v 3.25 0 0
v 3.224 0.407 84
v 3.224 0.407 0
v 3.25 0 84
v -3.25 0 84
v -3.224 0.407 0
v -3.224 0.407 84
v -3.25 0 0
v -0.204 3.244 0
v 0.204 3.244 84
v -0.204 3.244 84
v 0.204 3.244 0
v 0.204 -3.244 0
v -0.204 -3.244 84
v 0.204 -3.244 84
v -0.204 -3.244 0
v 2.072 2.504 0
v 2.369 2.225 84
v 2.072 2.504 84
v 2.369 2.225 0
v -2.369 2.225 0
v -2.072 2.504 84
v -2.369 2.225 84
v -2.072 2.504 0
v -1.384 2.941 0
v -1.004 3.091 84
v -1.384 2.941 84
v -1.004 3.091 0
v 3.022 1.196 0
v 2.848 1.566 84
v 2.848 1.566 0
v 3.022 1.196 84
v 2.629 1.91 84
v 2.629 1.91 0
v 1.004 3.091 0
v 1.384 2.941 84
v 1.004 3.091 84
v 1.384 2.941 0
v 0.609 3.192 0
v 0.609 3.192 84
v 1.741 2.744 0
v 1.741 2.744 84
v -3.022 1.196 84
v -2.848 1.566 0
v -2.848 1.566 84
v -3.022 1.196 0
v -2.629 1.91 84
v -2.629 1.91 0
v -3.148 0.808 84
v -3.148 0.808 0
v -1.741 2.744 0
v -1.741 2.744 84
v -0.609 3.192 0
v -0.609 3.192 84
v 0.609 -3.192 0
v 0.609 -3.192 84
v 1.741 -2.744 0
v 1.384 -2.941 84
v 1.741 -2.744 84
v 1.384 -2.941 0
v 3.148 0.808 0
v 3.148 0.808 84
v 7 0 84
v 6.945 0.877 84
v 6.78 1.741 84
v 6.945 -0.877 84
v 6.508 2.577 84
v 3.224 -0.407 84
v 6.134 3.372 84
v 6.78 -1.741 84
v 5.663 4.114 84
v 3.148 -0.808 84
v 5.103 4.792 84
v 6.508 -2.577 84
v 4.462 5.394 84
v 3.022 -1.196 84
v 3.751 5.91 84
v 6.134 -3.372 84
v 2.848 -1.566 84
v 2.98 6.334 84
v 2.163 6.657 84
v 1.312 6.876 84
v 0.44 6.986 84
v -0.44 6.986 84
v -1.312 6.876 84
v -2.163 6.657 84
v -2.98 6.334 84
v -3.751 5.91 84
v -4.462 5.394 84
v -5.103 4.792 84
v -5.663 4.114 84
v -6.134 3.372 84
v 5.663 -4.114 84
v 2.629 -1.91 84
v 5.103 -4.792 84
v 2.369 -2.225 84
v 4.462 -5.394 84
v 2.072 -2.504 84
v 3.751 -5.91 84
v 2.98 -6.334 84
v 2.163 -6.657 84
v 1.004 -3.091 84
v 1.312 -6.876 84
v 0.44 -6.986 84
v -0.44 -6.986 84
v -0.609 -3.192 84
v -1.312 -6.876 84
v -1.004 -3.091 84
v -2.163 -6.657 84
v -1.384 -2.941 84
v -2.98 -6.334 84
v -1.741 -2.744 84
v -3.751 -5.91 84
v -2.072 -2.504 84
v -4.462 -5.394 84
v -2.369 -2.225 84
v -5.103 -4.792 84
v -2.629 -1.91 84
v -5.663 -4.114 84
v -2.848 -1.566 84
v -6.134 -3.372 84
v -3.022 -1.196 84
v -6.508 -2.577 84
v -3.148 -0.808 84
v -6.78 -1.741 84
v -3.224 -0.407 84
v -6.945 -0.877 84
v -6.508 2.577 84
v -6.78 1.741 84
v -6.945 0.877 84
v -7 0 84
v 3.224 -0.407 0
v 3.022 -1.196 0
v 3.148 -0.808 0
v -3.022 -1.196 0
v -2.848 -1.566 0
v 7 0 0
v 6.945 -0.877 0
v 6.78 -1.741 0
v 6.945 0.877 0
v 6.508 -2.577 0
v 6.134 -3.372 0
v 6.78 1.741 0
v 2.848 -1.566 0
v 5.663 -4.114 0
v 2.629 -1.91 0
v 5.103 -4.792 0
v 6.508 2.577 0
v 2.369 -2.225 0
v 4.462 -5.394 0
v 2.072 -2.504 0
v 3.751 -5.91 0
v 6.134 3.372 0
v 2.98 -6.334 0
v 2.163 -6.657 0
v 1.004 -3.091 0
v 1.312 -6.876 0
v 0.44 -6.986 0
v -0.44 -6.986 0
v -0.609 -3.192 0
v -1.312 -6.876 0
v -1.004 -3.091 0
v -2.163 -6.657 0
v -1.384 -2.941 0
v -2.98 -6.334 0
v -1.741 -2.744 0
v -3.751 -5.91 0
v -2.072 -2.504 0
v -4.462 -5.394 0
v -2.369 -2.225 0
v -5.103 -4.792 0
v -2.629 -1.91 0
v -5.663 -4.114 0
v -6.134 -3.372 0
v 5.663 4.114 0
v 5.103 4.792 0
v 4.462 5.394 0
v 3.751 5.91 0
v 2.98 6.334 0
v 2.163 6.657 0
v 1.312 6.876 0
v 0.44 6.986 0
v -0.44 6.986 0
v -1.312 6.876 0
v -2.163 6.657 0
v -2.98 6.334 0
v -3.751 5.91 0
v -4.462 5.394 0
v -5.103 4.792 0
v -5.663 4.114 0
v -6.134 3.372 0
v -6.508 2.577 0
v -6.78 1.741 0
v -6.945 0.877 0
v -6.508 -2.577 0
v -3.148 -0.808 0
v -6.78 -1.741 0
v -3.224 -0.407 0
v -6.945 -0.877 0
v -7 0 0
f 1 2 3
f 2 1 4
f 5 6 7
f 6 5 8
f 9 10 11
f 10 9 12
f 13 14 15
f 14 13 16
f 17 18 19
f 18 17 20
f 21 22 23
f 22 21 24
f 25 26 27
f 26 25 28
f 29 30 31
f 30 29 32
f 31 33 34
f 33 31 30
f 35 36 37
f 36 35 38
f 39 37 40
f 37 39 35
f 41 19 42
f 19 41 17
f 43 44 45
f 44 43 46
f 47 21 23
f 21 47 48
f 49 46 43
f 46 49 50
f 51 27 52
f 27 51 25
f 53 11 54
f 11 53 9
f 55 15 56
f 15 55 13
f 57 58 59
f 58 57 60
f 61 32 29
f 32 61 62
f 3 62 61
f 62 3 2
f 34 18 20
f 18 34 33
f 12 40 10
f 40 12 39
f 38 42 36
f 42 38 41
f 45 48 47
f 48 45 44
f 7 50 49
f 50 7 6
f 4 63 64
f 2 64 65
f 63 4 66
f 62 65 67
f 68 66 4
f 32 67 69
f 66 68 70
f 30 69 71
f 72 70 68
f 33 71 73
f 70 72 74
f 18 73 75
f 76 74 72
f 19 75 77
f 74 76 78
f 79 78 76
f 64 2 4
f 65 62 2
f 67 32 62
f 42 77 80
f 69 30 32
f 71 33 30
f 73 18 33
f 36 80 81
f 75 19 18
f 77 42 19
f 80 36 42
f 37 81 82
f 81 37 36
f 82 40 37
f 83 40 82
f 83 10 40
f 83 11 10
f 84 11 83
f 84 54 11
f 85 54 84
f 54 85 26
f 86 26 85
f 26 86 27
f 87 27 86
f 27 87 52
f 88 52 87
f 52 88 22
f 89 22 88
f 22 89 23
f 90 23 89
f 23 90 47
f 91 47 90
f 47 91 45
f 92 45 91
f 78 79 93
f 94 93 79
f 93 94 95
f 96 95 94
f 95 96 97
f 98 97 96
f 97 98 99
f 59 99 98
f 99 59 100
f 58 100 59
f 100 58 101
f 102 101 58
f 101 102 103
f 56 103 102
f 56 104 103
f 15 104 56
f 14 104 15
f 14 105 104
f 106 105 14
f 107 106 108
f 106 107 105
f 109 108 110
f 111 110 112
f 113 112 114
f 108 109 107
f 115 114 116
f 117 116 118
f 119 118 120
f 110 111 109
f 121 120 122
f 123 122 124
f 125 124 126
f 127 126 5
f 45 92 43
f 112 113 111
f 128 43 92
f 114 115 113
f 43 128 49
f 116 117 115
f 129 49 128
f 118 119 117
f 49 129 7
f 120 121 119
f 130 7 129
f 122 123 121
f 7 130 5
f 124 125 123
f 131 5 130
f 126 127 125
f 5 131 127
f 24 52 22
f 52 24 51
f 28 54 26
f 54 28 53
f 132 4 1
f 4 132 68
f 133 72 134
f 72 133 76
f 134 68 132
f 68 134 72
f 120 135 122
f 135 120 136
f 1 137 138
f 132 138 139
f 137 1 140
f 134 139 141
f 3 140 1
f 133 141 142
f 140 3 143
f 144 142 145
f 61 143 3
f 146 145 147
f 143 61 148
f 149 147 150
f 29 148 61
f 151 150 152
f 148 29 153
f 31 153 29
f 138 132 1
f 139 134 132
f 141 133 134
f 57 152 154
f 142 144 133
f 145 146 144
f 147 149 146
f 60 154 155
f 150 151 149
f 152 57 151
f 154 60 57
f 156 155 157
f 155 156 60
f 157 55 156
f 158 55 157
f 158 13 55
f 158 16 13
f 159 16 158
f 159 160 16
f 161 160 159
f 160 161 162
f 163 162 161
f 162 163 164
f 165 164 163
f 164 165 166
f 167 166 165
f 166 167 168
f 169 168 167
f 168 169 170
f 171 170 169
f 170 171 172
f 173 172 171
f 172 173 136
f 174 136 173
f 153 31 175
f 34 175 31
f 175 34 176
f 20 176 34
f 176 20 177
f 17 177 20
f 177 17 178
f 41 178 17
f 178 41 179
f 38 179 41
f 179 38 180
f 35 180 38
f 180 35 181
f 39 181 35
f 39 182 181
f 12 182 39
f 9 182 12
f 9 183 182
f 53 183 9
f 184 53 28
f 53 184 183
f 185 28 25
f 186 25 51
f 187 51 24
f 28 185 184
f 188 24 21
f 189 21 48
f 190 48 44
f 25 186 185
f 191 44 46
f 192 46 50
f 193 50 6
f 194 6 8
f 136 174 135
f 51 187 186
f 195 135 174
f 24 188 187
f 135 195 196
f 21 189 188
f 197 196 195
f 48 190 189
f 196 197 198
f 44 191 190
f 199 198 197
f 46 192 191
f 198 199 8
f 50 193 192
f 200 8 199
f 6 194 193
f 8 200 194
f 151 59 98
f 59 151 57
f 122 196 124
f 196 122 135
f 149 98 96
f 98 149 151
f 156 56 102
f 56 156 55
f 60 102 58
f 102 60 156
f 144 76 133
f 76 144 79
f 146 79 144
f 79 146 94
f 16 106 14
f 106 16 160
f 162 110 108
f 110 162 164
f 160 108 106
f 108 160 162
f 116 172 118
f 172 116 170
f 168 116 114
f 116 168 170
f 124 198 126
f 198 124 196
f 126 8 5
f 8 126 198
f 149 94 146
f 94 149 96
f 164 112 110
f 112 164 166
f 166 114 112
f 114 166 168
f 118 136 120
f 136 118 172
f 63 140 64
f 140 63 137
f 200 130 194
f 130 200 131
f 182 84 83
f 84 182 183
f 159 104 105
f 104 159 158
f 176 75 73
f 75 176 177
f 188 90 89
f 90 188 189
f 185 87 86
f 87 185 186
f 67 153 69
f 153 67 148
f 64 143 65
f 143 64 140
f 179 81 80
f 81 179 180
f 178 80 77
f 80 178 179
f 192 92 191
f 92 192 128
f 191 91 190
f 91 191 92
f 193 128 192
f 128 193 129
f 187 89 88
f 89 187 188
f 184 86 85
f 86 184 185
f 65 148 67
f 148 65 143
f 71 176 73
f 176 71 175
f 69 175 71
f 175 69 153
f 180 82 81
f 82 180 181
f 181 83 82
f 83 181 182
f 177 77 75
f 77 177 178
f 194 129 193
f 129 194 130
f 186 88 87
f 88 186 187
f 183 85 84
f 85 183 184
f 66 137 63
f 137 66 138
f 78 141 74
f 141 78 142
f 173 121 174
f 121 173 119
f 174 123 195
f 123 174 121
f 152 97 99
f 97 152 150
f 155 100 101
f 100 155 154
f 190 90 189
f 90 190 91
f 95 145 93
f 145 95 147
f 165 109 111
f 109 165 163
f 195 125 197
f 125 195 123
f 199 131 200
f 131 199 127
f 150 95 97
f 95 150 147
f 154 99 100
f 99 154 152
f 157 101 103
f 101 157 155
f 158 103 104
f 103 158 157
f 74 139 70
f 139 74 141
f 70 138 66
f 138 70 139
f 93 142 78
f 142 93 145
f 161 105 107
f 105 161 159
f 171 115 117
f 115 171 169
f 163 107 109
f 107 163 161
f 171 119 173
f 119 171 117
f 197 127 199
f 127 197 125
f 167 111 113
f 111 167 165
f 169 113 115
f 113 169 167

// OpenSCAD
$fn = 50;


difference() {
	union() {
		cylinder(h = 84, r = 7.0000000000);
	}
	union() {
		translate(v = [0, 0, -100]) {
			cylinder(h = 200, r = 3.2500000000);
		}
		translate(v = [0, 0, -100]) {
			cylinder(h = 200, r = 1.8000000000);
		}
	}
}
